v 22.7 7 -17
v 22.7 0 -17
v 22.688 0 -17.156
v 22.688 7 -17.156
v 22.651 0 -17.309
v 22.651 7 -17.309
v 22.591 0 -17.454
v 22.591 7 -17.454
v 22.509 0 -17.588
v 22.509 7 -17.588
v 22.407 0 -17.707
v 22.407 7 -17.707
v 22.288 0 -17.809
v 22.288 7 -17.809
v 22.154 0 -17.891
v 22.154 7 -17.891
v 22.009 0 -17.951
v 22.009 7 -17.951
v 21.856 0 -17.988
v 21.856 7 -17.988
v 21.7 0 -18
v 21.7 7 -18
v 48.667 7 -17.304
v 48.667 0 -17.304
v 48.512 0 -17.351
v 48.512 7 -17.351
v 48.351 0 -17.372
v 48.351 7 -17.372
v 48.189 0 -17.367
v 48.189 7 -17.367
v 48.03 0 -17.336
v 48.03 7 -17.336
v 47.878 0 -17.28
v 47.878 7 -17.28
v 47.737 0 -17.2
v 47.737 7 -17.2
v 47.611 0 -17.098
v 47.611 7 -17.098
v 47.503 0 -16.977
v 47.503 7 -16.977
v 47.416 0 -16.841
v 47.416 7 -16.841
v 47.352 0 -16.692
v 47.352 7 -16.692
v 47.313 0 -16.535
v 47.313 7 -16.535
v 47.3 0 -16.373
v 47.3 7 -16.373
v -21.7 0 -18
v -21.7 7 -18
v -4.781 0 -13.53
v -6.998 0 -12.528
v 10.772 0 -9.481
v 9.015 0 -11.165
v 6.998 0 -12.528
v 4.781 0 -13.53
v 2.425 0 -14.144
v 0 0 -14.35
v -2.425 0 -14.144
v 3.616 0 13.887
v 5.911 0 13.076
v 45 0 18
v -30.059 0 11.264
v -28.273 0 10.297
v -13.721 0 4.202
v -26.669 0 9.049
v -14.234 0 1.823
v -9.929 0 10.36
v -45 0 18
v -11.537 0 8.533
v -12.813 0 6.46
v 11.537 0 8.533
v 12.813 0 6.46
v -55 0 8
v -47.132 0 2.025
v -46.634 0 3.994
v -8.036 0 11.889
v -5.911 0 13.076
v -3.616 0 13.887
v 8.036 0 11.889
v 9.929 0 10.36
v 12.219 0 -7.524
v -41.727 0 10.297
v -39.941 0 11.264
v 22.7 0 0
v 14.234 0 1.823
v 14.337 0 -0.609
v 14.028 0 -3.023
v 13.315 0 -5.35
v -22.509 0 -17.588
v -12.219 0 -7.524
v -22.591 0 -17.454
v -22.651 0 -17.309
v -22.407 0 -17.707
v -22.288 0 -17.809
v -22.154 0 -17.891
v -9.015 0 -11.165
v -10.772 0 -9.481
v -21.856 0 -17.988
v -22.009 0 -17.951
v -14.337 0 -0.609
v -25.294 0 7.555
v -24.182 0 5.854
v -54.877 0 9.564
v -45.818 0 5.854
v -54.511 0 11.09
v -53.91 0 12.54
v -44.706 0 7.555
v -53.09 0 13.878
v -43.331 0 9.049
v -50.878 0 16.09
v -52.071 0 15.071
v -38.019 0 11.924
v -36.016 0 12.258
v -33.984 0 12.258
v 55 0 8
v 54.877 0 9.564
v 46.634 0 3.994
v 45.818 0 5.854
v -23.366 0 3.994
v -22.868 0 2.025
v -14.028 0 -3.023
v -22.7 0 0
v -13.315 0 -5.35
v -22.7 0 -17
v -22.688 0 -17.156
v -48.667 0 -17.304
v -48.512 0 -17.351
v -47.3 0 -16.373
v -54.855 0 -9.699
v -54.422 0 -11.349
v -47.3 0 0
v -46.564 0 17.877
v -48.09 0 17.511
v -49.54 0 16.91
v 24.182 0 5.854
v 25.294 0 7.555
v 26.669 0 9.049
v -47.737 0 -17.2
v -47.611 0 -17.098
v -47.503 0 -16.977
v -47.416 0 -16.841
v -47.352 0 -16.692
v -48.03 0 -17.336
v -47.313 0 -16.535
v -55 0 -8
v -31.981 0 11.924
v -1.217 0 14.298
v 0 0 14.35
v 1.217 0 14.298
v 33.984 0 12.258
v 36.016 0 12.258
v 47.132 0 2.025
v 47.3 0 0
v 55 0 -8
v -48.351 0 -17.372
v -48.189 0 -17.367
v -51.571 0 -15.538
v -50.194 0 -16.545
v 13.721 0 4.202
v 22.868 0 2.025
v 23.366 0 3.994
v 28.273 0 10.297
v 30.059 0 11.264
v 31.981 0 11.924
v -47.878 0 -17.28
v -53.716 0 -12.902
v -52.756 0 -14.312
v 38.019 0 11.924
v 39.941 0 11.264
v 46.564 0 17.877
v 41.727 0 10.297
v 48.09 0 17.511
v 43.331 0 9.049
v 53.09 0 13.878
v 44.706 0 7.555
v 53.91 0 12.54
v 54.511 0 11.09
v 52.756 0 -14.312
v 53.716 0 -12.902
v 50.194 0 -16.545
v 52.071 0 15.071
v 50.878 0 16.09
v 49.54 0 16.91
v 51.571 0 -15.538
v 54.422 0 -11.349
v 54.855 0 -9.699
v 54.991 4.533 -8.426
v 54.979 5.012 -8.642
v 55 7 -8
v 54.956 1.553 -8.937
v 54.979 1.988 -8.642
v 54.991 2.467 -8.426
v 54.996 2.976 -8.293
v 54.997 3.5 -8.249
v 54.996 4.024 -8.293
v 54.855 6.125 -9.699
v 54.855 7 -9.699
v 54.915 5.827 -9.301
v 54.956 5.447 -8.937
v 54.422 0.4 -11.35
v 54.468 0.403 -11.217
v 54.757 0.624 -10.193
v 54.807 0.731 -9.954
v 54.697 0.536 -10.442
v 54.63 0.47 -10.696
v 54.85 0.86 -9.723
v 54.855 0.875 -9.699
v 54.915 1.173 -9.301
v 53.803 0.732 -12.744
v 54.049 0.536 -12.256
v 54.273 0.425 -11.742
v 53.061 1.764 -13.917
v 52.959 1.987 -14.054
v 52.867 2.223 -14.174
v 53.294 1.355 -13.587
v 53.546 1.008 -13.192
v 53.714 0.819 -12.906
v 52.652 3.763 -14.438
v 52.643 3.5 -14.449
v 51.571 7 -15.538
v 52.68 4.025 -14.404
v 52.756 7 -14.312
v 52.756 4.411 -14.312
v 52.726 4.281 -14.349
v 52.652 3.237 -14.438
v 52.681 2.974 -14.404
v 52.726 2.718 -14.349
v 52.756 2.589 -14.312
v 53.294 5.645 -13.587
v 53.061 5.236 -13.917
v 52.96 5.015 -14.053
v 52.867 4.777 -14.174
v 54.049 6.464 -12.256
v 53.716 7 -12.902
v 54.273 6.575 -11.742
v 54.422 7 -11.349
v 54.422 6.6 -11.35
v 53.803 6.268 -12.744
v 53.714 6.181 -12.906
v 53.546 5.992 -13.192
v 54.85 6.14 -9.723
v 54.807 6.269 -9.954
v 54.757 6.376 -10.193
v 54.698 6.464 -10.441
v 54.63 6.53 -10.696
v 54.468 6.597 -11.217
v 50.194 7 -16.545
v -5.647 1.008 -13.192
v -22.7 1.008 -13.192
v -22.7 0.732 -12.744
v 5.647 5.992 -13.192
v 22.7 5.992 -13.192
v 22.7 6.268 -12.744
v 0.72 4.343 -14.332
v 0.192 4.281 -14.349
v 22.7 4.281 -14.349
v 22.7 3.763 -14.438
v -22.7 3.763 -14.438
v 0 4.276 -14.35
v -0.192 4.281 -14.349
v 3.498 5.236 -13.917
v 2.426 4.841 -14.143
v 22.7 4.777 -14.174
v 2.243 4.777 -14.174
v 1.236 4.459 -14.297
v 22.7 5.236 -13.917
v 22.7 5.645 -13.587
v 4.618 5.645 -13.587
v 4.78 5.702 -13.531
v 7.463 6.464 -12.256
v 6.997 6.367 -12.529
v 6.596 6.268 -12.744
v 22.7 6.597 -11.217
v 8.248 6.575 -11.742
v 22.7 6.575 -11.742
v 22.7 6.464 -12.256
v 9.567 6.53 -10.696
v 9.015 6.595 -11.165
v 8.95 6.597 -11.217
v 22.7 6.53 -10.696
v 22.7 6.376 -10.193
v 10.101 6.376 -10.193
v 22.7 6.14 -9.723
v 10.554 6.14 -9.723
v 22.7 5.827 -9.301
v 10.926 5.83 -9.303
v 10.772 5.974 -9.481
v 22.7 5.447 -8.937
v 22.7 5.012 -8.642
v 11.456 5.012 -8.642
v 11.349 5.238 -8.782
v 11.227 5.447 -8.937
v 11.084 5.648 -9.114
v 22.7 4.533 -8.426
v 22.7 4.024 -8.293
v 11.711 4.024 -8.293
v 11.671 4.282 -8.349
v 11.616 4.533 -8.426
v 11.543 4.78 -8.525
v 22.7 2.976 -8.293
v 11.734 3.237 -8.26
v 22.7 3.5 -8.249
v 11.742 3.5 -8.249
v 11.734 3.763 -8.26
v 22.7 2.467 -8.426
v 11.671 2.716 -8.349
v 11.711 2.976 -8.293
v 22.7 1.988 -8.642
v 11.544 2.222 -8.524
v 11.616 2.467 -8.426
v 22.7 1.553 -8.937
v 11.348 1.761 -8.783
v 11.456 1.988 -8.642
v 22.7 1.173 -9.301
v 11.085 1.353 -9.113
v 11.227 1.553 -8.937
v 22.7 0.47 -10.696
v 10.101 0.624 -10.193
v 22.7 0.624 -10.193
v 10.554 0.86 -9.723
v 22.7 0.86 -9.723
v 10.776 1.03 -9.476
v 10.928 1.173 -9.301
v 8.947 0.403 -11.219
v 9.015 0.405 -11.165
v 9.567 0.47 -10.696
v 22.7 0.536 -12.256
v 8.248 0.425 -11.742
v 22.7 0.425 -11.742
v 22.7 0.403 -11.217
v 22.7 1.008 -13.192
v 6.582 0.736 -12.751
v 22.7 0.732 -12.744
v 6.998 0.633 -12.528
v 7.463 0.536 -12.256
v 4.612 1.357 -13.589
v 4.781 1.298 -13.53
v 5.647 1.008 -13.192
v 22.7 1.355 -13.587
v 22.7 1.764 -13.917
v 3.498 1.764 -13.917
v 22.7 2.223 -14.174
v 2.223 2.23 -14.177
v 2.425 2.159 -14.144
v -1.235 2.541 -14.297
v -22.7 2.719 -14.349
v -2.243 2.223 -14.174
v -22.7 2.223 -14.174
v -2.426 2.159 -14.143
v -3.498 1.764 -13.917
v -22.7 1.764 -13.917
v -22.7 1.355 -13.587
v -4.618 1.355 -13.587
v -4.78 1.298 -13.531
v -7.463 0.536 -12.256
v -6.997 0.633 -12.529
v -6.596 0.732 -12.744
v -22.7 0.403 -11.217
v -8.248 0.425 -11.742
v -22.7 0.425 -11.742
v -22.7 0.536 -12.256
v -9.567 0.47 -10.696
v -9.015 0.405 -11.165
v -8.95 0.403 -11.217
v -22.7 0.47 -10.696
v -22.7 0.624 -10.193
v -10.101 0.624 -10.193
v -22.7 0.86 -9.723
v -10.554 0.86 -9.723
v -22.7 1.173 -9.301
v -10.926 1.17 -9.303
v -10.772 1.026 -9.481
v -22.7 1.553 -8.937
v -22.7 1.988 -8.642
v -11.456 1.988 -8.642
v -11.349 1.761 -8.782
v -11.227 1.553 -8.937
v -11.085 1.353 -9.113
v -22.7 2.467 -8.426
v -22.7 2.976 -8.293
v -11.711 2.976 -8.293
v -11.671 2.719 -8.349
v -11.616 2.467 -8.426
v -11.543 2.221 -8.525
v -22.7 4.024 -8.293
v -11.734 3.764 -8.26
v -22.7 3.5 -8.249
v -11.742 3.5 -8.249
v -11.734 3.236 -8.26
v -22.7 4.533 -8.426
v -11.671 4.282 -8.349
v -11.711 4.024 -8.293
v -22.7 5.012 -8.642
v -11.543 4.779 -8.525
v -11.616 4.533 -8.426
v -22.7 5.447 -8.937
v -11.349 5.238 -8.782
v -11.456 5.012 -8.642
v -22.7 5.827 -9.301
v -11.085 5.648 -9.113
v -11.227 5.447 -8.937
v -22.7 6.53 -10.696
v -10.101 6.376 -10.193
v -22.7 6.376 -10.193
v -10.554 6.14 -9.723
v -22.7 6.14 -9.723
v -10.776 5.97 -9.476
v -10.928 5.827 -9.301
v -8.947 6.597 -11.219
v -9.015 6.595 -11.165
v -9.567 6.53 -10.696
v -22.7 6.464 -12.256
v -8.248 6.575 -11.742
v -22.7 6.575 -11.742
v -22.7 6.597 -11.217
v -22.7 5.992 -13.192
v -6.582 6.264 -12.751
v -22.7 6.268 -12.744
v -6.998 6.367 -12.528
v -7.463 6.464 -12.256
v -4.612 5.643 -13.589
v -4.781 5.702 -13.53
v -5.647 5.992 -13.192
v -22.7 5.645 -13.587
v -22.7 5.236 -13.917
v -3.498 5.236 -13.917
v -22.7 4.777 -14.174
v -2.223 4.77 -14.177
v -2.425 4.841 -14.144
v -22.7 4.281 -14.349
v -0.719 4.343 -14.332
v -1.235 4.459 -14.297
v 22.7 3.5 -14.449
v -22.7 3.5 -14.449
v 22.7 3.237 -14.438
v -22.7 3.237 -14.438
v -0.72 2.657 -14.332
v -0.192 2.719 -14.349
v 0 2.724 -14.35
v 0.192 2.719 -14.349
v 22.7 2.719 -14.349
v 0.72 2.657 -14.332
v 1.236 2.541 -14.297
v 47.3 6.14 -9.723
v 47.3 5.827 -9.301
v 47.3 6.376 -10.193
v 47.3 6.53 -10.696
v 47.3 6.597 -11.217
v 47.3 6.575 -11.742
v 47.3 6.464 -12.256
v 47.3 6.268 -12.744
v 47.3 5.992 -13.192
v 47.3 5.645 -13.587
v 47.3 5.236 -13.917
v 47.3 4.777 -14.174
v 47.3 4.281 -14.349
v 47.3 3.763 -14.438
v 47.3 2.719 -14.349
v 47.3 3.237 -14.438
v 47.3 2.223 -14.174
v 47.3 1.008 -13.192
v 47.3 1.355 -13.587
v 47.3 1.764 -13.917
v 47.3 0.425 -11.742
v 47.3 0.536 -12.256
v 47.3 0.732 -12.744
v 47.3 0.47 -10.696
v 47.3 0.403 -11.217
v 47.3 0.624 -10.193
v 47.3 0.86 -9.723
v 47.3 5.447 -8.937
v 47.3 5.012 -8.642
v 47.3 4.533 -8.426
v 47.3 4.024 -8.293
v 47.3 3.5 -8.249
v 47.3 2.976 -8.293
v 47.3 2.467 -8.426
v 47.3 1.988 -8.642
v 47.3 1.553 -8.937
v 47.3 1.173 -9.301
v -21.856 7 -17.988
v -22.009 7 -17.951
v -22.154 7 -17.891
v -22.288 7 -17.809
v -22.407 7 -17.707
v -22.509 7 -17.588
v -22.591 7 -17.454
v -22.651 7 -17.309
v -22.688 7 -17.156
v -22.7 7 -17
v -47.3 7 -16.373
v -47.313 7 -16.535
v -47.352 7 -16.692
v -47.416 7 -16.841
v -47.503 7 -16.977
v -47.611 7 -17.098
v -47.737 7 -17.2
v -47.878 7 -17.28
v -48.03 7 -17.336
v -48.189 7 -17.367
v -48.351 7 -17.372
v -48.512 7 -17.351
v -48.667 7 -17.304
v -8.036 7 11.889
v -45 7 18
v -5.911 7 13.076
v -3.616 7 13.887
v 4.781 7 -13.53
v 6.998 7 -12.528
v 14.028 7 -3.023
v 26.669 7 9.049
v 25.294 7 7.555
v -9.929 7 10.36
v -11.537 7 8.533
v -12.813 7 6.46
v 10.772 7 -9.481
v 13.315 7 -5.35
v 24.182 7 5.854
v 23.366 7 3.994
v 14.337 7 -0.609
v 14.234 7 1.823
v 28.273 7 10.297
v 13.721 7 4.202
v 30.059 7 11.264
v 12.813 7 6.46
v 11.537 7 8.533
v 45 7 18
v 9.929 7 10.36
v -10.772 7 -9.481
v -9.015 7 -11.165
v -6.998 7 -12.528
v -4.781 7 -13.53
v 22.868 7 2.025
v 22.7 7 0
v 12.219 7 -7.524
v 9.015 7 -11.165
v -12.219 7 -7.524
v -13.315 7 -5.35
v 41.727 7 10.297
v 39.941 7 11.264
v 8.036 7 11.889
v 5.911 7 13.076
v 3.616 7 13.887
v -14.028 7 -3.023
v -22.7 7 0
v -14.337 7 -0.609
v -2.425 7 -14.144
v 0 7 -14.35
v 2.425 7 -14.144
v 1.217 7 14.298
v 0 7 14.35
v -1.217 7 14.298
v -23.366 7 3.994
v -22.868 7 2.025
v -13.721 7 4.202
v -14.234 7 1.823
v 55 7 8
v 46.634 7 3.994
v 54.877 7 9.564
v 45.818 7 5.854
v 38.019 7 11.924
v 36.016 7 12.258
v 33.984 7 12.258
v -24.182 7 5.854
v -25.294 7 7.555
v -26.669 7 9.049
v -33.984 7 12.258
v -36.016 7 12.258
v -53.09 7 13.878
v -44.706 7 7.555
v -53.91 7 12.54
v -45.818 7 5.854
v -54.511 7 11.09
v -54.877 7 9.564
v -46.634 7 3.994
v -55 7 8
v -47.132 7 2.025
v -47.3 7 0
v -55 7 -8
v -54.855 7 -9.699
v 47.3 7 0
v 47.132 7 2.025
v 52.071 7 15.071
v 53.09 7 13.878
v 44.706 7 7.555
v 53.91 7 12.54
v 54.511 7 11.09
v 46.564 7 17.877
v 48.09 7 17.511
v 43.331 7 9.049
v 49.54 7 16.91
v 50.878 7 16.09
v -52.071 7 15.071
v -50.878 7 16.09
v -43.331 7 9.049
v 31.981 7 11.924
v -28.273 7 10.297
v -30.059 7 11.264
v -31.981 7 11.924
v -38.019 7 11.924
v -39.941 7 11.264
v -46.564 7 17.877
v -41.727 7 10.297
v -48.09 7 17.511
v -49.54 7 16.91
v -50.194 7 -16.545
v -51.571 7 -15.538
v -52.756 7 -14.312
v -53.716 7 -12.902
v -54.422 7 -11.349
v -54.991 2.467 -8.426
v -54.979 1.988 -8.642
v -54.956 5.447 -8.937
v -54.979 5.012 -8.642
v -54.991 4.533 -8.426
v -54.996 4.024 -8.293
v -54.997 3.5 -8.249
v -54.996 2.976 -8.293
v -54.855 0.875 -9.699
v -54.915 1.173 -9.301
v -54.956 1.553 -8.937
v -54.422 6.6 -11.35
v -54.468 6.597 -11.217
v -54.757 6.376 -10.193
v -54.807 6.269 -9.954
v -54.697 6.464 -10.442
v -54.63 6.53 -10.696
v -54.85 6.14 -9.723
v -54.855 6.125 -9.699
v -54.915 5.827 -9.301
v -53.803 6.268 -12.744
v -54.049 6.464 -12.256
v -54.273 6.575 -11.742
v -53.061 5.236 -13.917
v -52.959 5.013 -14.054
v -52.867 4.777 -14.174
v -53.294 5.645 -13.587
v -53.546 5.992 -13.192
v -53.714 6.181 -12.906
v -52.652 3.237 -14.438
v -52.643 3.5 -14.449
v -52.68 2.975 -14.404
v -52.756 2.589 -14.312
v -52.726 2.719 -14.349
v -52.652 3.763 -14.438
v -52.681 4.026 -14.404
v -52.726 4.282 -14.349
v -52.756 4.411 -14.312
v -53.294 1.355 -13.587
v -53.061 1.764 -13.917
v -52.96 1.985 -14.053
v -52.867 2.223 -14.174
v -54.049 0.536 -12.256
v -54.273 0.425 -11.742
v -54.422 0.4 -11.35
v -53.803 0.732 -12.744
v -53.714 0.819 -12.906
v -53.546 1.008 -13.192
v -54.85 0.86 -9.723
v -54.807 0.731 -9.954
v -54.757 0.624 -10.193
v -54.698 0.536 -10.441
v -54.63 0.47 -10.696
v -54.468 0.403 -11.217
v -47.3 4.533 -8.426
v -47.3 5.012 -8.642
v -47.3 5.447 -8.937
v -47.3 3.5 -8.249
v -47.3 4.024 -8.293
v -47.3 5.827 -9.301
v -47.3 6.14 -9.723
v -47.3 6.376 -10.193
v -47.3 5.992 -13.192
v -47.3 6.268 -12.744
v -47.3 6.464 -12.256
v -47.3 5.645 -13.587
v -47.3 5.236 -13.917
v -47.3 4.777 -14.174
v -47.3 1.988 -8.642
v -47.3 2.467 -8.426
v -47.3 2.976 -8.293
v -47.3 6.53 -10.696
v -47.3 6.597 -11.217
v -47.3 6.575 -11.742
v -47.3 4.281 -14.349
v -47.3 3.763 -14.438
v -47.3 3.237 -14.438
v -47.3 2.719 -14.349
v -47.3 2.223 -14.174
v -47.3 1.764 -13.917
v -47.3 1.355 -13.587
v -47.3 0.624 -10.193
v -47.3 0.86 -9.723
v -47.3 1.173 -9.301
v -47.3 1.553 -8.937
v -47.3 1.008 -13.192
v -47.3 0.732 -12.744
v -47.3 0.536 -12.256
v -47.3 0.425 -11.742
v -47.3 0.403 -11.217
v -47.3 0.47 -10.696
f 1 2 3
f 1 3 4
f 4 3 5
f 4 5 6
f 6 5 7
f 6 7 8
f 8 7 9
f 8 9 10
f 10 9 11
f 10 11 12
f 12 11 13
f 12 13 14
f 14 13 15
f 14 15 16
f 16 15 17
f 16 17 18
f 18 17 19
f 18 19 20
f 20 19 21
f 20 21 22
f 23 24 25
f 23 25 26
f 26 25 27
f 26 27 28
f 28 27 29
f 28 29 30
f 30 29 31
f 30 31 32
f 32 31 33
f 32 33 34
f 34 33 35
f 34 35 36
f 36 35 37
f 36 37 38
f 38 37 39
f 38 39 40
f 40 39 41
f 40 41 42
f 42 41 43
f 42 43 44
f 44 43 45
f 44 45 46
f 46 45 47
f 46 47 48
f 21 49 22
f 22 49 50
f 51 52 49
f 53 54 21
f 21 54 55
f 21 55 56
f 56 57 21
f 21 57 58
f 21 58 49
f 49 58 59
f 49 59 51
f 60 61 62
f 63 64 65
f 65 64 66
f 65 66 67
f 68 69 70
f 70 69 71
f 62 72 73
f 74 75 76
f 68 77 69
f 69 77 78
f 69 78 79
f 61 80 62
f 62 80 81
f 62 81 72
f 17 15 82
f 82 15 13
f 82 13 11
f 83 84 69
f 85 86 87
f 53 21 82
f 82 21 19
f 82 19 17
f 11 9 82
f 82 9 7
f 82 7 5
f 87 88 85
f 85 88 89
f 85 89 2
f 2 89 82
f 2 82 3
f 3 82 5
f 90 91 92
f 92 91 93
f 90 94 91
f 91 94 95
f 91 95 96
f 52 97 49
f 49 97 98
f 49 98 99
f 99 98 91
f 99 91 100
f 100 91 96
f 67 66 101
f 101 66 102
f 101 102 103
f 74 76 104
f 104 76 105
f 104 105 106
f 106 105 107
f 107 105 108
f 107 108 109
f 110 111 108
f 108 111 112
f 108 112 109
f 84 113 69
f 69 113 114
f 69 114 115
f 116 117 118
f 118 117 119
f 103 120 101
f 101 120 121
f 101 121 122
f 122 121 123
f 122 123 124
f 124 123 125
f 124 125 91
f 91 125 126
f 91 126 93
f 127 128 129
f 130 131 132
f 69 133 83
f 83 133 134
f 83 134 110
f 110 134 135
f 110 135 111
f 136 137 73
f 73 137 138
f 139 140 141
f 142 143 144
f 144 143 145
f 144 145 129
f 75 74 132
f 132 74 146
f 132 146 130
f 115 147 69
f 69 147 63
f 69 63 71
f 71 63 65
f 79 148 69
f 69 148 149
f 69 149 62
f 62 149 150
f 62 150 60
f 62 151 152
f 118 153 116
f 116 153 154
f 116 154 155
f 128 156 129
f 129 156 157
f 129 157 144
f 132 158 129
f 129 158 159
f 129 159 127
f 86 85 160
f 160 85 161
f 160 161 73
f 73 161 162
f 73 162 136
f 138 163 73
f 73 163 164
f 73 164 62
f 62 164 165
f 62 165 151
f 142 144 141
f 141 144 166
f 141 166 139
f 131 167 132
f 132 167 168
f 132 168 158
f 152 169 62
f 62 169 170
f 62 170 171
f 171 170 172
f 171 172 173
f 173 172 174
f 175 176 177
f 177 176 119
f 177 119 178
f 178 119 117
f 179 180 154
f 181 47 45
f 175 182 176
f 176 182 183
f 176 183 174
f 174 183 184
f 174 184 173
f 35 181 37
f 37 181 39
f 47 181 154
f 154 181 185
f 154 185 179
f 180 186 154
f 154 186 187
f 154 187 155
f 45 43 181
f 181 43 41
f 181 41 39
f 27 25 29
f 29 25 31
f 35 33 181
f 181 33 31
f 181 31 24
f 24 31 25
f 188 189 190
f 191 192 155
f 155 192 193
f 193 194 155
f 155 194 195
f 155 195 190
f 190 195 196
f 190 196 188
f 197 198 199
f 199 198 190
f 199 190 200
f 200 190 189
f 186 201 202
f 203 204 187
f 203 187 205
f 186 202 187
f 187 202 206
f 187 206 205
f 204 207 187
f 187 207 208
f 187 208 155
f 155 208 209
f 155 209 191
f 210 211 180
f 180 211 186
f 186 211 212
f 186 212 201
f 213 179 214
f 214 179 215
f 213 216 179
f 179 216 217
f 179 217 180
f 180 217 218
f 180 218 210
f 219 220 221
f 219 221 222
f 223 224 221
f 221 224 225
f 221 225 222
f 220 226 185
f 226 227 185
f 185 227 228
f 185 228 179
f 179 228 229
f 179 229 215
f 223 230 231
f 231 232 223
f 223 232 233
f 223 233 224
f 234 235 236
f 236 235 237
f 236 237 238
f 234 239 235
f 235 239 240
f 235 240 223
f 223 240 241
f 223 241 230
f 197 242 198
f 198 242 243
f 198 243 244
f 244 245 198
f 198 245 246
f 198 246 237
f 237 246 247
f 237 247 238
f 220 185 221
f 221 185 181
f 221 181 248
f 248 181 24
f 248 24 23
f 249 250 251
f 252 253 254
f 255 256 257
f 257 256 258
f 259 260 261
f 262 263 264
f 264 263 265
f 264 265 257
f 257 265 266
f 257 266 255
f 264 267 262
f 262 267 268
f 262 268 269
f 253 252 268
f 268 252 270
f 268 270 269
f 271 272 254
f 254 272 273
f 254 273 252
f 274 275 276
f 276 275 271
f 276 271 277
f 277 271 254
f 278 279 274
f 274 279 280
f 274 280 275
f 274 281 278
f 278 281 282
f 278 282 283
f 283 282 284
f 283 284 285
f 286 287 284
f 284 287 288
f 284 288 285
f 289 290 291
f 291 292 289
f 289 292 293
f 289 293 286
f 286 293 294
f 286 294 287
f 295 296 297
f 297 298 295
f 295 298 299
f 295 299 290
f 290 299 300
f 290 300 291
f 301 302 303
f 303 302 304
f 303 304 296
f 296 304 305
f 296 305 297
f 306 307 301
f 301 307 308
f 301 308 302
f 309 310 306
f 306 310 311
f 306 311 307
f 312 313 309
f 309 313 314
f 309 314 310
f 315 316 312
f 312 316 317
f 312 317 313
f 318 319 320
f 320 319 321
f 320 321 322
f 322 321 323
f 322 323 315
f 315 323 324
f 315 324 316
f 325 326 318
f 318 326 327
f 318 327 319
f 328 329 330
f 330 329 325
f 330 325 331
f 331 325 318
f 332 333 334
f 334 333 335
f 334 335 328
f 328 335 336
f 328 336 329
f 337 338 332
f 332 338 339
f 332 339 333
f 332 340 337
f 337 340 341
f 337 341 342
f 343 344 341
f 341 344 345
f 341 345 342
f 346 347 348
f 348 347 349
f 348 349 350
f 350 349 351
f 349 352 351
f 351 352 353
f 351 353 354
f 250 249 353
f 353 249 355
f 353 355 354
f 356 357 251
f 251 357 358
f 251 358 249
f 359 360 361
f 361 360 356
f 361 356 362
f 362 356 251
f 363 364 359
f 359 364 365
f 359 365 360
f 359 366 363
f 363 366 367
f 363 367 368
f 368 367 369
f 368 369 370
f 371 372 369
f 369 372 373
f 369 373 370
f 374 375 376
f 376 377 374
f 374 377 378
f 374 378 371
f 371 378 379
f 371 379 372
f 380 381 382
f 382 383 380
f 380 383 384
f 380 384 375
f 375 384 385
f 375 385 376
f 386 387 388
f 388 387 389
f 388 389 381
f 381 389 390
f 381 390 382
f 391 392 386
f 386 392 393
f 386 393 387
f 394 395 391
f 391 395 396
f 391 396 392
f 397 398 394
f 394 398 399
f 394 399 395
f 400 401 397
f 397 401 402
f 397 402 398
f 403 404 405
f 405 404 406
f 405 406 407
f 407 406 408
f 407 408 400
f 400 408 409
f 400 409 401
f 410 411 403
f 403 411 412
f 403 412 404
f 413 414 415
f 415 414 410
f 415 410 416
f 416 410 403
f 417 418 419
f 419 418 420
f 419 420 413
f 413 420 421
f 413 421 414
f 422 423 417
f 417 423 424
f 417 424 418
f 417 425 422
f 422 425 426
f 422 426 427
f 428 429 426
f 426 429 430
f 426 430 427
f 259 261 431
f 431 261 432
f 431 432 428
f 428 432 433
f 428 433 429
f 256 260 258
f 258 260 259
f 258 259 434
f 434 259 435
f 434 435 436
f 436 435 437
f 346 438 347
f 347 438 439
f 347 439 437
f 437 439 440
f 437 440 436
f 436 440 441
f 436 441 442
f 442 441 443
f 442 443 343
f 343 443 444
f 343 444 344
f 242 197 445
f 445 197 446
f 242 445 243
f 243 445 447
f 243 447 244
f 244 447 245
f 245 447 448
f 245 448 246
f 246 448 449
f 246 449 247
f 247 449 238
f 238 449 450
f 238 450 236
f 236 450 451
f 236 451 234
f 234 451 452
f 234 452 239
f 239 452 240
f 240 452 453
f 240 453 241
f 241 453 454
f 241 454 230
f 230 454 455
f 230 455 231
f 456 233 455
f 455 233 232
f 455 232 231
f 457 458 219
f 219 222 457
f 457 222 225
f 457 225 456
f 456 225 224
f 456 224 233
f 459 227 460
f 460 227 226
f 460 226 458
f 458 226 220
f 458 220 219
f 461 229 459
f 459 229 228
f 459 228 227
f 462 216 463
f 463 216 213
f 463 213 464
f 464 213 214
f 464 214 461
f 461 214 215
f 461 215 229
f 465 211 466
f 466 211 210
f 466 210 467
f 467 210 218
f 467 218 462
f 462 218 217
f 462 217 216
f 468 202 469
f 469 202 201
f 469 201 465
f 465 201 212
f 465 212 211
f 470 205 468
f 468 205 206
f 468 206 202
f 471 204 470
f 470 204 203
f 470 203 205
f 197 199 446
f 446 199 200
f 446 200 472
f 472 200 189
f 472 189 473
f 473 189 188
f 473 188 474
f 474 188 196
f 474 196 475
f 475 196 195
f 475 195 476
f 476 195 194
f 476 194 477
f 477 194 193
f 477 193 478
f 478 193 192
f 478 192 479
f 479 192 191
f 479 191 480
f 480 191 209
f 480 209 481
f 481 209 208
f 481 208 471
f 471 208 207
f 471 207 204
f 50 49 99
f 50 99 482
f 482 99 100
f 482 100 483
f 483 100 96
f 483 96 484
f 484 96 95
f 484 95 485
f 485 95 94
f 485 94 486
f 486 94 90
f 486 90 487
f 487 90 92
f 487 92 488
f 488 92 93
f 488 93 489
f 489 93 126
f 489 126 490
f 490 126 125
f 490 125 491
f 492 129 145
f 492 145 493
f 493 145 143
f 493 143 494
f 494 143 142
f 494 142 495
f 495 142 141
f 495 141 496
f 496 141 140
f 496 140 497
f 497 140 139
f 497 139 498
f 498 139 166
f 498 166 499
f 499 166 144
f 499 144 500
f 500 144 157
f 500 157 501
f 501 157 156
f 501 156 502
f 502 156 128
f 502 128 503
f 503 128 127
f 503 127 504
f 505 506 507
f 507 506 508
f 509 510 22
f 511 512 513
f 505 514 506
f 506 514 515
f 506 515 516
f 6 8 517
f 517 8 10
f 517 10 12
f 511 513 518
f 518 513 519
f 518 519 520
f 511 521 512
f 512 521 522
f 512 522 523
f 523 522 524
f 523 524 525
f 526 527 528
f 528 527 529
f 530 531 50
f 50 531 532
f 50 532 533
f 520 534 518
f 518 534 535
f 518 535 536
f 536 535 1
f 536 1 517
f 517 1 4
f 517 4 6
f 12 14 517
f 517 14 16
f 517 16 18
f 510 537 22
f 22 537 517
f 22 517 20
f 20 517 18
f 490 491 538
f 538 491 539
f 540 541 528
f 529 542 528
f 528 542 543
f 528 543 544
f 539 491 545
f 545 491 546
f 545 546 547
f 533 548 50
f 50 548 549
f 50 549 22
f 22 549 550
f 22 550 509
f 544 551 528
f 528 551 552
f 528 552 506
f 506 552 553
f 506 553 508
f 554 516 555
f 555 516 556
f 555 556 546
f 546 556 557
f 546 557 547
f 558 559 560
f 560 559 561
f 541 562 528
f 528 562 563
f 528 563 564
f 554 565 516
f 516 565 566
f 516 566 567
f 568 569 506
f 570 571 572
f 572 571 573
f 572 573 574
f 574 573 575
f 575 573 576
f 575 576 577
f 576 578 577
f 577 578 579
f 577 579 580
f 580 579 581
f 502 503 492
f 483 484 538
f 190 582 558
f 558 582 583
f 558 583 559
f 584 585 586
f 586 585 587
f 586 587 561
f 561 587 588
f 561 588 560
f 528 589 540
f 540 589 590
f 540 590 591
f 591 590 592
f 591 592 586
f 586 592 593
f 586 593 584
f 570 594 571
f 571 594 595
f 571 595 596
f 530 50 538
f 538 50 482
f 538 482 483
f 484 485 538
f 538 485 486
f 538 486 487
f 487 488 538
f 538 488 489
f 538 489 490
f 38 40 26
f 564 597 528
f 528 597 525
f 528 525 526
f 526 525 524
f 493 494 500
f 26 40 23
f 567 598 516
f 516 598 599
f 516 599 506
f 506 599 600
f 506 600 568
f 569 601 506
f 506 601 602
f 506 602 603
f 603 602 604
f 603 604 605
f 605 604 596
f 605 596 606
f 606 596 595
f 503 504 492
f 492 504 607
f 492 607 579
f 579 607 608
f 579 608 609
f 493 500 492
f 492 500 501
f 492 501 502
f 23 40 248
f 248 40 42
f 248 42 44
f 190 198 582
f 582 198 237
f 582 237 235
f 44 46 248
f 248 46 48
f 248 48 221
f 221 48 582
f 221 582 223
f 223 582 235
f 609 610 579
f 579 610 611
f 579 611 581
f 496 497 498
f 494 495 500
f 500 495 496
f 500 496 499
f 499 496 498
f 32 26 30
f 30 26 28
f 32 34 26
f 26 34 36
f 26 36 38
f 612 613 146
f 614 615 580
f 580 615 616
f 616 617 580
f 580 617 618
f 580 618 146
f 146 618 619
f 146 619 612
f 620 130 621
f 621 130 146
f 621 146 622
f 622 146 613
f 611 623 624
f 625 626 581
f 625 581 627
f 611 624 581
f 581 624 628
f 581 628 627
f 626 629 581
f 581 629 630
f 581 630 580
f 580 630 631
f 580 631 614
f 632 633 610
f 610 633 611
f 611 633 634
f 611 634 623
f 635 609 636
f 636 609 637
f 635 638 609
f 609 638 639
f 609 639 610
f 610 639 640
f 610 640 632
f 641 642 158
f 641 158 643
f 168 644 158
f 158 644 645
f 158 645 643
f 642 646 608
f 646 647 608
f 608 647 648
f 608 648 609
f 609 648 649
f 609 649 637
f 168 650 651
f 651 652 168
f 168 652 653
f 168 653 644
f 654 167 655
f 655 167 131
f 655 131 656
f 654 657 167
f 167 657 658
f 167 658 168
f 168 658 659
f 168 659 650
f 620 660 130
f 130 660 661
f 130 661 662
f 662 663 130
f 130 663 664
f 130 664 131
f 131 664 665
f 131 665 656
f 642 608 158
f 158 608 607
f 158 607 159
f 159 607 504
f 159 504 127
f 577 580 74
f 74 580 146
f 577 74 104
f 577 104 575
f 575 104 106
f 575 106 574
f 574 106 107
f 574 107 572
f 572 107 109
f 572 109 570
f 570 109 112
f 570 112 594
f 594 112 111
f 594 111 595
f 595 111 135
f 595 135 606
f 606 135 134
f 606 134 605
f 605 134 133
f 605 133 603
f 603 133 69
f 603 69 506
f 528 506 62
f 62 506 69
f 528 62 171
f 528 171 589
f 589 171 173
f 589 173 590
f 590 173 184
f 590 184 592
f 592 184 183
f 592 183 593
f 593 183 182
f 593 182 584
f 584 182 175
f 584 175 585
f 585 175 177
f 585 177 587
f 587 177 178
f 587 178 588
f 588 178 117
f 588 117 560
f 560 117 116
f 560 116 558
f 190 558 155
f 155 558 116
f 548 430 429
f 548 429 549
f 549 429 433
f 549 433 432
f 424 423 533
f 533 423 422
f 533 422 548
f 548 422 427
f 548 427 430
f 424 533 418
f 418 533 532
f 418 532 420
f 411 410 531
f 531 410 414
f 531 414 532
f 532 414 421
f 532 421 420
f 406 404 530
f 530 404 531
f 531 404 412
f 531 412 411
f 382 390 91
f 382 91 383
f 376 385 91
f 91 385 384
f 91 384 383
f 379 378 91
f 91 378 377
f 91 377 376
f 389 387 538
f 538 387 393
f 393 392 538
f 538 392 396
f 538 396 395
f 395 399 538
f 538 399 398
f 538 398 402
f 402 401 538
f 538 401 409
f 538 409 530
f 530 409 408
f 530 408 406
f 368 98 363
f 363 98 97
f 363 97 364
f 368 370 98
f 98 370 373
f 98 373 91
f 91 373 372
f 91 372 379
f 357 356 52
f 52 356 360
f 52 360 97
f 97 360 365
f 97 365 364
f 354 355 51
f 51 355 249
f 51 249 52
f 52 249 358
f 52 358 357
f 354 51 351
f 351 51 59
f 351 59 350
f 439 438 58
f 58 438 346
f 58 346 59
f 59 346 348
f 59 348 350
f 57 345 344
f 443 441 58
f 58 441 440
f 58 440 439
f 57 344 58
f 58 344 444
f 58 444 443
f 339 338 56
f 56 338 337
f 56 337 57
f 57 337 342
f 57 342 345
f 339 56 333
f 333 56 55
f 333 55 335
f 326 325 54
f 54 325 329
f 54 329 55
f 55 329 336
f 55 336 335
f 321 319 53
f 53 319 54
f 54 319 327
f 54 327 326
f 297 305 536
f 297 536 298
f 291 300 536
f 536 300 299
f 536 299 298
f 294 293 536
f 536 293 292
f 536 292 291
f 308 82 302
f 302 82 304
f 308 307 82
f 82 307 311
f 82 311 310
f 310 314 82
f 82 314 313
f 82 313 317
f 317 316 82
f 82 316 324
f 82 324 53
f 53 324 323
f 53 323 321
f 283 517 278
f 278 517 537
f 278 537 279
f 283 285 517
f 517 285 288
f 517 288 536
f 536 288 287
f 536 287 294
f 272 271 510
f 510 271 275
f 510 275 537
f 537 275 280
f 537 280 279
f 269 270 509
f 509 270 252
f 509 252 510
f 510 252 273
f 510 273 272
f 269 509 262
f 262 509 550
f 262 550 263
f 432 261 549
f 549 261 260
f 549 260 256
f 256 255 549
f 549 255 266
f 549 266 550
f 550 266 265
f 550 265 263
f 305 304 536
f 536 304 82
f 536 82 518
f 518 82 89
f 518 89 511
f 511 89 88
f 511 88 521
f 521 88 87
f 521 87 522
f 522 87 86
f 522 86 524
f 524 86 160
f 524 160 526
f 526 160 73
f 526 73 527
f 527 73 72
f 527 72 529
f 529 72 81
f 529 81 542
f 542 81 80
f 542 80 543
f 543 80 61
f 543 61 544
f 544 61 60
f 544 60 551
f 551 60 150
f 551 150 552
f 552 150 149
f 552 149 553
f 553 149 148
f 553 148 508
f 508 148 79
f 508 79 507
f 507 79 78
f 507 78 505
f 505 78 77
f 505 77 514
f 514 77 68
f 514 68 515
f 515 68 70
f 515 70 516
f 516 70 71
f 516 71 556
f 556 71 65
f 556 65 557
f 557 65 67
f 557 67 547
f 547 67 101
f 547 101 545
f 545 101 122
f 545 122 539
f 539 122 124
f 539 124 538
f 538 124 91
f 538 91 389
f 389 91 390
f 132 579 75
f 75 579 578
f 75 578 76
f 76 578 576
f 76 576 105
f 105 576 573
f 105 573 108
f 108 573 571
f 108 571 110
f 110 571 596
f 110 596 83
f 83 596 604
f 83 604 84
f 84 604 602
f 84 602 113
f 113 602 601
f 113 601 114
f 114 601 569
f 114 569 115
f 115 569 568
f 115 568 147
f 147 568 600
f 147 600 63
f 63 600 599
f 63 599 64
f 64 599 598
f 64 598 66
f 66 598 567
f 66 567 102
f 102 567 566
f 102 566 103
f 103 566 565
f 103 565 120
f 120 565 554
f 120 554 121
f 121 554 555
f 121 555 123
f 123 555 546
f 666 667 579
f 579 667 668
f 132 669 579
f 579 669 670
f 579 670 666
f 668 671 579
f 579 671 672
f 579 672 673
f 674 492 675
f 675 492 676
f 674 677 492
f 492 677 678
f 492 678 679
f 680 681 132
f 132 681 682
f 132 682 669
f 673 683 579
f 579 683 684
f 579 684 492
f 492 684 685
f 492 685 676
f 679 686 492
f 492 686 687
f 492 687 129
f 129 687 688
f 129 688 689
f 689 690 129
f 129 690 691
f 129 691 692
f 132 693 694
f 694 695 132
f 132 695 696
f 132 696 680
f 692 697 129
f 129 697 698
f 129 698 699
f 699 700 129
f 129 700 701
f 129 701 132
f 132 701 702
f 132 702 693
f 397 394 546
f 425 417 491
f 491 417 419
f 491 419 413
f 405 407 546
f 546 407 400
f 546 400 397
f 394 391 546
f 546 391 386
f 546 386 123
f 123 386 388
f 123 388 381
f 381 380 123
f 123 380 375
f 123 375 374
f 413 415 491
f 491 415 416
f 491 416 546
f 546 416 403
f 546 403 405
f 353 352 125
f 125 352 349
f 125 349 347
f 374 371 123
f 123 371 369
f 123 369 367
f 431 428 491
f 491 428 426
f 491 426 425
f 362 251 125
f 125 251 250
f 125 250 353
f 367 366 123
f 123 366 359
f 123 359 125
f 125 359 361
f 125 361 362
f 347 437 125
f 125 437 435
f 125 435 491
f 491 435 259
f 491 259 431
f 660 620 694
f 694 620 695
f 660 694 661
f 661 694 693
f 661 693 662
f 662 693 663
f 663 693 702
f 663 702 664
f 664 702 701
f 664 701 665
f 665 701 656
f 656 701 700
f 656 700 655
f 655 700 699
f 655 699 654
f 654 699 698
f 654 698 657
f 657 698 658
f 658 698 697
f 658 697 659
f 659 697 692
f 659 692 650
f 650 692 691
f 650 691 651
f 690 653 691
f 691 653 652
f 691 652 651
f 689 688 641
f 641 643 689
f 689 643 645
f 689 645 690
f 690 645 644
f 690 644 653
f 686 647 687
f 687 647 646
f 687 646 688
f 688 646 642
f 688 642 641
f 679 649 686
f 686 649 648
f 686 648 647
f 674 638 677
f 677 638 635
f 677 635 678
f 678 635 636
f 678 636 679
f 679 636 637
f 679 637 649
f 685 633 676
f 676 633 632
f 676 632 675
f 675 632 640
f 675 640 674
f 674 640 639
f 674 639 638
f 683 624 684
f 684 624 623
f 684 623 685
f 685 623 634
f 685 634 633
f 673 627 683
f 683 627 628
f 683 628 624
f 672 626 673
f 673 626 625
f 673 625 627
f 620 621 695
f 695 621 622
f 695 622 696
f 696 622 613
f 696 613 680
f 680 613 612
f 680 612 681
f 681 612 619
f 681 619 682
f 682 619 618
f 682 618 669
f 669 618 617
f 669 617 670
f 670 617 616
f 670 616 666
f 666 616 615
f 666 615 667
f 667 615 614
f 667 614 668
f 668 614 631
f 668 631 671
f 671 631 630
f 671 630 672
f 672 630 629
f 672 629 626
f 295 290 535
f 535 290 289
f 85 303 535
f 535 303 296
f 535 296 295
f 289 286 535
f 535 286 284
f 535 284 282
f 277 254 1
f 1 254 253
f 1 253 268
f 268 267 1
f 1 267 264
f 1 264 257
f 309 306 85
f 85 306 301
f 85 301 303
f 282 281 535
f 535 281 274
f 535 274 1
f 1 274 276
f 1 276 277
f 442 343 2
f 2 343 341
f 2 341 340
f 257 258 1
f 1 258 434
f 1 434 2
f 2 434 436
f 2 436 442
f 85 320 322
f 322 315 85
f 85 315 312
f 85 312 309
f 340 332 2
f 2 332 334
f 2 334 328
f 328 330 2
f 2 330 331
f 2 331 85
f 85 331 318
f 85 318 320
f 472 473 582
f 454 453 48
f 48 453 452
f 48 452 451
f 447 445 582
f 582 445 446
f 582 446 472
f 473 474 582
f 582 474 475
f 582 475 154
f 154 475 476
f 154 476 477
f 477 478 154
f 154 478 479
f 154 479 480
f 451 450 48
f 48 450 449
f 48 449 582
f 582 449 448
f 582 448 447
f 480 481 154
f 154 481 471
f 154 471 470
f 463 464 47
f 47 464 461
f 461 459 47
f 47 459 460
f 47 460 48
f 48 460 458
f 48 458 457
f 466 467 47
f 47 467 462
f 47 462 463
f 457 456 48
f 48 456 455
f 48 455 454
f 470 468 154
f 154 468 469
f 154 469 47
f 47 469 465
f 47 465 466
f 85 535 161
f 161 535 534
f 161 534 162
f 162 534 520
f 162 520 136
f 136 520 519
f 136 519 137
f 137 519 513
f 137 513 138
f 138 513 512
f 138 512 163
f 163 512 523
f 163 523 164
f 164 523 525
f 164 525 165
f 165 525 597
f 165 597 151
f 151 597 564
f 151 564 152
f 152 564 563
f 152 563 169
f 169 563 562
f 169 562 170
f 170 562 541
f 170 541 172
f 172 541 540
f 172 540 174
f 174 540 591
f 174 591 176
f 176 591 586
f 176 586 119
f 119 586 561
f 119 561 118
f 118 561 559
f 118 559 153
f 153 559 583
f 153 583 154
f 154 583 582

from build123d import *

# Parameters (mm, degrees)
SKETCH1_R               = 14.35
BOSS_EXTRUDE1_DEPTH     = 7
CUT_EXTRUDE1_DEPTH      = 10
CUT_EXTRUDE2_DEPTH      = 81.06428667
CUT_EXTRUDE2_DEPTH_BACK = 81.06428667
SKETCH3_R               = 3.1
FILLET2_R               = 1
FILLET3_R               = 1
FILLET5_R               = 1
FILLET7_R               = 1


with BuildPart() as part:
    # Sketch1 → Boss-Extrude1 (new body)
    with BuildSketch(Plane(origin=(0, 0, 0), x_dir=(1, 0, 0), z_dir=(0, 1, 0))):
        with BuildLine():
            Line((-45, -18), (45, -18))
            ThreePointArc((45, -18), (52.071067812, -15.071067812), (55, -8))
            Line((55, -8), (55, 8))
            ThreePointArc((55, 8), (52.071067812, 15.071067812), (45, 18))
            Line((45, 18), (-45, 18))
            ThreePointArc((-45, 18), (-52.071067812, 15.071067812), (-55, 8))
            Line((-55, 8), (-55, -8))
            ThreePointArc((-55, -8), (-52.071067812, -15.071067812), (-45, -18))
        make_face()
        with Locations(Location((0, 0, 0), (0, 0, 270))):
            Circle(SKETCH1_R, mode=Mode.SUBTRACT)
    extrude(amount=BOSS_EXTRUDE1_DEPTH)

    # Sketch2 → Cut-Extrude1 (cut)
    with BuildSketch(Plane(origin=(0, 7, 0), x_dir=(1, 0, 0), z_dir=(0, 1, 0))):
        with BuildLine():
            Line((-22.7, 0), (-22.7, 18))
            Line((-22.7, 18), (-47.3, 18))
            Line((-47.3, 18), (-47.3, 0))
            ThreePointArc((-47.3, 0), (-35, -12.3), (-22.7, 0))
        make_face()
    cut_extrude1 = extrude(amount=-CUT_EXTRUDE1_DEPTH, mode=Mode.SUBTRACT)

    # Sketch3 → Cut-Extrude2 (cut, two sides: drawn at the far end of the back side and taken through both)
    with BuildSketch(Plane.ZY.offset(22.7).offset(-CUT_EXTRUDE2_DEPTH_BACK)):
        with Locations((-11.34873736, 3.5)):
            Circle(SKETCH3_R)
    extrude(amount=CUT_EXTRUDE2_DEPTH + CUT_EXTRUDE2_DEPTH_BACK, mode=Mode.SUBTRACT)

    # Fillet2
    fillet2_edges = [part.edges().sort_by_distance(p)[0] for p in [
        (-47.3, 3.5, -17.731906288),
    ]]
    fillet(fillet2_edges, radius=FILLET2_R)

    # Fillet3
    fillet3_edges = [part.edges().sort_by_distance(p)[0] for p in [
        (-22.7, 3.5, -18),
    ]]
    fillet(fillet3_edges, radius=FILLET3_R)

    # Mirror5: Cut-Extrude1 across plane
    add(cut_extrude1.mirror(Plane.ZY), mode=Mode.SUBTRACT)

    # Fillet5
    fillet5_edges = [part.edges().sort_by_distance(p)[0] for p in [
        (47.3, 3.5, -17.731906288),
    ]]
    fillet(fillet5_edges, radius=FILLET5_R)

    # Fillet7
    fillet7_edges = [part.edges().sort_by_distance(p)[0] for p in [
        (22.7, 3.5, -18),
    ]]
    fillet(fillet7_edges, radius=FILLET7_R)


solid = part.part
